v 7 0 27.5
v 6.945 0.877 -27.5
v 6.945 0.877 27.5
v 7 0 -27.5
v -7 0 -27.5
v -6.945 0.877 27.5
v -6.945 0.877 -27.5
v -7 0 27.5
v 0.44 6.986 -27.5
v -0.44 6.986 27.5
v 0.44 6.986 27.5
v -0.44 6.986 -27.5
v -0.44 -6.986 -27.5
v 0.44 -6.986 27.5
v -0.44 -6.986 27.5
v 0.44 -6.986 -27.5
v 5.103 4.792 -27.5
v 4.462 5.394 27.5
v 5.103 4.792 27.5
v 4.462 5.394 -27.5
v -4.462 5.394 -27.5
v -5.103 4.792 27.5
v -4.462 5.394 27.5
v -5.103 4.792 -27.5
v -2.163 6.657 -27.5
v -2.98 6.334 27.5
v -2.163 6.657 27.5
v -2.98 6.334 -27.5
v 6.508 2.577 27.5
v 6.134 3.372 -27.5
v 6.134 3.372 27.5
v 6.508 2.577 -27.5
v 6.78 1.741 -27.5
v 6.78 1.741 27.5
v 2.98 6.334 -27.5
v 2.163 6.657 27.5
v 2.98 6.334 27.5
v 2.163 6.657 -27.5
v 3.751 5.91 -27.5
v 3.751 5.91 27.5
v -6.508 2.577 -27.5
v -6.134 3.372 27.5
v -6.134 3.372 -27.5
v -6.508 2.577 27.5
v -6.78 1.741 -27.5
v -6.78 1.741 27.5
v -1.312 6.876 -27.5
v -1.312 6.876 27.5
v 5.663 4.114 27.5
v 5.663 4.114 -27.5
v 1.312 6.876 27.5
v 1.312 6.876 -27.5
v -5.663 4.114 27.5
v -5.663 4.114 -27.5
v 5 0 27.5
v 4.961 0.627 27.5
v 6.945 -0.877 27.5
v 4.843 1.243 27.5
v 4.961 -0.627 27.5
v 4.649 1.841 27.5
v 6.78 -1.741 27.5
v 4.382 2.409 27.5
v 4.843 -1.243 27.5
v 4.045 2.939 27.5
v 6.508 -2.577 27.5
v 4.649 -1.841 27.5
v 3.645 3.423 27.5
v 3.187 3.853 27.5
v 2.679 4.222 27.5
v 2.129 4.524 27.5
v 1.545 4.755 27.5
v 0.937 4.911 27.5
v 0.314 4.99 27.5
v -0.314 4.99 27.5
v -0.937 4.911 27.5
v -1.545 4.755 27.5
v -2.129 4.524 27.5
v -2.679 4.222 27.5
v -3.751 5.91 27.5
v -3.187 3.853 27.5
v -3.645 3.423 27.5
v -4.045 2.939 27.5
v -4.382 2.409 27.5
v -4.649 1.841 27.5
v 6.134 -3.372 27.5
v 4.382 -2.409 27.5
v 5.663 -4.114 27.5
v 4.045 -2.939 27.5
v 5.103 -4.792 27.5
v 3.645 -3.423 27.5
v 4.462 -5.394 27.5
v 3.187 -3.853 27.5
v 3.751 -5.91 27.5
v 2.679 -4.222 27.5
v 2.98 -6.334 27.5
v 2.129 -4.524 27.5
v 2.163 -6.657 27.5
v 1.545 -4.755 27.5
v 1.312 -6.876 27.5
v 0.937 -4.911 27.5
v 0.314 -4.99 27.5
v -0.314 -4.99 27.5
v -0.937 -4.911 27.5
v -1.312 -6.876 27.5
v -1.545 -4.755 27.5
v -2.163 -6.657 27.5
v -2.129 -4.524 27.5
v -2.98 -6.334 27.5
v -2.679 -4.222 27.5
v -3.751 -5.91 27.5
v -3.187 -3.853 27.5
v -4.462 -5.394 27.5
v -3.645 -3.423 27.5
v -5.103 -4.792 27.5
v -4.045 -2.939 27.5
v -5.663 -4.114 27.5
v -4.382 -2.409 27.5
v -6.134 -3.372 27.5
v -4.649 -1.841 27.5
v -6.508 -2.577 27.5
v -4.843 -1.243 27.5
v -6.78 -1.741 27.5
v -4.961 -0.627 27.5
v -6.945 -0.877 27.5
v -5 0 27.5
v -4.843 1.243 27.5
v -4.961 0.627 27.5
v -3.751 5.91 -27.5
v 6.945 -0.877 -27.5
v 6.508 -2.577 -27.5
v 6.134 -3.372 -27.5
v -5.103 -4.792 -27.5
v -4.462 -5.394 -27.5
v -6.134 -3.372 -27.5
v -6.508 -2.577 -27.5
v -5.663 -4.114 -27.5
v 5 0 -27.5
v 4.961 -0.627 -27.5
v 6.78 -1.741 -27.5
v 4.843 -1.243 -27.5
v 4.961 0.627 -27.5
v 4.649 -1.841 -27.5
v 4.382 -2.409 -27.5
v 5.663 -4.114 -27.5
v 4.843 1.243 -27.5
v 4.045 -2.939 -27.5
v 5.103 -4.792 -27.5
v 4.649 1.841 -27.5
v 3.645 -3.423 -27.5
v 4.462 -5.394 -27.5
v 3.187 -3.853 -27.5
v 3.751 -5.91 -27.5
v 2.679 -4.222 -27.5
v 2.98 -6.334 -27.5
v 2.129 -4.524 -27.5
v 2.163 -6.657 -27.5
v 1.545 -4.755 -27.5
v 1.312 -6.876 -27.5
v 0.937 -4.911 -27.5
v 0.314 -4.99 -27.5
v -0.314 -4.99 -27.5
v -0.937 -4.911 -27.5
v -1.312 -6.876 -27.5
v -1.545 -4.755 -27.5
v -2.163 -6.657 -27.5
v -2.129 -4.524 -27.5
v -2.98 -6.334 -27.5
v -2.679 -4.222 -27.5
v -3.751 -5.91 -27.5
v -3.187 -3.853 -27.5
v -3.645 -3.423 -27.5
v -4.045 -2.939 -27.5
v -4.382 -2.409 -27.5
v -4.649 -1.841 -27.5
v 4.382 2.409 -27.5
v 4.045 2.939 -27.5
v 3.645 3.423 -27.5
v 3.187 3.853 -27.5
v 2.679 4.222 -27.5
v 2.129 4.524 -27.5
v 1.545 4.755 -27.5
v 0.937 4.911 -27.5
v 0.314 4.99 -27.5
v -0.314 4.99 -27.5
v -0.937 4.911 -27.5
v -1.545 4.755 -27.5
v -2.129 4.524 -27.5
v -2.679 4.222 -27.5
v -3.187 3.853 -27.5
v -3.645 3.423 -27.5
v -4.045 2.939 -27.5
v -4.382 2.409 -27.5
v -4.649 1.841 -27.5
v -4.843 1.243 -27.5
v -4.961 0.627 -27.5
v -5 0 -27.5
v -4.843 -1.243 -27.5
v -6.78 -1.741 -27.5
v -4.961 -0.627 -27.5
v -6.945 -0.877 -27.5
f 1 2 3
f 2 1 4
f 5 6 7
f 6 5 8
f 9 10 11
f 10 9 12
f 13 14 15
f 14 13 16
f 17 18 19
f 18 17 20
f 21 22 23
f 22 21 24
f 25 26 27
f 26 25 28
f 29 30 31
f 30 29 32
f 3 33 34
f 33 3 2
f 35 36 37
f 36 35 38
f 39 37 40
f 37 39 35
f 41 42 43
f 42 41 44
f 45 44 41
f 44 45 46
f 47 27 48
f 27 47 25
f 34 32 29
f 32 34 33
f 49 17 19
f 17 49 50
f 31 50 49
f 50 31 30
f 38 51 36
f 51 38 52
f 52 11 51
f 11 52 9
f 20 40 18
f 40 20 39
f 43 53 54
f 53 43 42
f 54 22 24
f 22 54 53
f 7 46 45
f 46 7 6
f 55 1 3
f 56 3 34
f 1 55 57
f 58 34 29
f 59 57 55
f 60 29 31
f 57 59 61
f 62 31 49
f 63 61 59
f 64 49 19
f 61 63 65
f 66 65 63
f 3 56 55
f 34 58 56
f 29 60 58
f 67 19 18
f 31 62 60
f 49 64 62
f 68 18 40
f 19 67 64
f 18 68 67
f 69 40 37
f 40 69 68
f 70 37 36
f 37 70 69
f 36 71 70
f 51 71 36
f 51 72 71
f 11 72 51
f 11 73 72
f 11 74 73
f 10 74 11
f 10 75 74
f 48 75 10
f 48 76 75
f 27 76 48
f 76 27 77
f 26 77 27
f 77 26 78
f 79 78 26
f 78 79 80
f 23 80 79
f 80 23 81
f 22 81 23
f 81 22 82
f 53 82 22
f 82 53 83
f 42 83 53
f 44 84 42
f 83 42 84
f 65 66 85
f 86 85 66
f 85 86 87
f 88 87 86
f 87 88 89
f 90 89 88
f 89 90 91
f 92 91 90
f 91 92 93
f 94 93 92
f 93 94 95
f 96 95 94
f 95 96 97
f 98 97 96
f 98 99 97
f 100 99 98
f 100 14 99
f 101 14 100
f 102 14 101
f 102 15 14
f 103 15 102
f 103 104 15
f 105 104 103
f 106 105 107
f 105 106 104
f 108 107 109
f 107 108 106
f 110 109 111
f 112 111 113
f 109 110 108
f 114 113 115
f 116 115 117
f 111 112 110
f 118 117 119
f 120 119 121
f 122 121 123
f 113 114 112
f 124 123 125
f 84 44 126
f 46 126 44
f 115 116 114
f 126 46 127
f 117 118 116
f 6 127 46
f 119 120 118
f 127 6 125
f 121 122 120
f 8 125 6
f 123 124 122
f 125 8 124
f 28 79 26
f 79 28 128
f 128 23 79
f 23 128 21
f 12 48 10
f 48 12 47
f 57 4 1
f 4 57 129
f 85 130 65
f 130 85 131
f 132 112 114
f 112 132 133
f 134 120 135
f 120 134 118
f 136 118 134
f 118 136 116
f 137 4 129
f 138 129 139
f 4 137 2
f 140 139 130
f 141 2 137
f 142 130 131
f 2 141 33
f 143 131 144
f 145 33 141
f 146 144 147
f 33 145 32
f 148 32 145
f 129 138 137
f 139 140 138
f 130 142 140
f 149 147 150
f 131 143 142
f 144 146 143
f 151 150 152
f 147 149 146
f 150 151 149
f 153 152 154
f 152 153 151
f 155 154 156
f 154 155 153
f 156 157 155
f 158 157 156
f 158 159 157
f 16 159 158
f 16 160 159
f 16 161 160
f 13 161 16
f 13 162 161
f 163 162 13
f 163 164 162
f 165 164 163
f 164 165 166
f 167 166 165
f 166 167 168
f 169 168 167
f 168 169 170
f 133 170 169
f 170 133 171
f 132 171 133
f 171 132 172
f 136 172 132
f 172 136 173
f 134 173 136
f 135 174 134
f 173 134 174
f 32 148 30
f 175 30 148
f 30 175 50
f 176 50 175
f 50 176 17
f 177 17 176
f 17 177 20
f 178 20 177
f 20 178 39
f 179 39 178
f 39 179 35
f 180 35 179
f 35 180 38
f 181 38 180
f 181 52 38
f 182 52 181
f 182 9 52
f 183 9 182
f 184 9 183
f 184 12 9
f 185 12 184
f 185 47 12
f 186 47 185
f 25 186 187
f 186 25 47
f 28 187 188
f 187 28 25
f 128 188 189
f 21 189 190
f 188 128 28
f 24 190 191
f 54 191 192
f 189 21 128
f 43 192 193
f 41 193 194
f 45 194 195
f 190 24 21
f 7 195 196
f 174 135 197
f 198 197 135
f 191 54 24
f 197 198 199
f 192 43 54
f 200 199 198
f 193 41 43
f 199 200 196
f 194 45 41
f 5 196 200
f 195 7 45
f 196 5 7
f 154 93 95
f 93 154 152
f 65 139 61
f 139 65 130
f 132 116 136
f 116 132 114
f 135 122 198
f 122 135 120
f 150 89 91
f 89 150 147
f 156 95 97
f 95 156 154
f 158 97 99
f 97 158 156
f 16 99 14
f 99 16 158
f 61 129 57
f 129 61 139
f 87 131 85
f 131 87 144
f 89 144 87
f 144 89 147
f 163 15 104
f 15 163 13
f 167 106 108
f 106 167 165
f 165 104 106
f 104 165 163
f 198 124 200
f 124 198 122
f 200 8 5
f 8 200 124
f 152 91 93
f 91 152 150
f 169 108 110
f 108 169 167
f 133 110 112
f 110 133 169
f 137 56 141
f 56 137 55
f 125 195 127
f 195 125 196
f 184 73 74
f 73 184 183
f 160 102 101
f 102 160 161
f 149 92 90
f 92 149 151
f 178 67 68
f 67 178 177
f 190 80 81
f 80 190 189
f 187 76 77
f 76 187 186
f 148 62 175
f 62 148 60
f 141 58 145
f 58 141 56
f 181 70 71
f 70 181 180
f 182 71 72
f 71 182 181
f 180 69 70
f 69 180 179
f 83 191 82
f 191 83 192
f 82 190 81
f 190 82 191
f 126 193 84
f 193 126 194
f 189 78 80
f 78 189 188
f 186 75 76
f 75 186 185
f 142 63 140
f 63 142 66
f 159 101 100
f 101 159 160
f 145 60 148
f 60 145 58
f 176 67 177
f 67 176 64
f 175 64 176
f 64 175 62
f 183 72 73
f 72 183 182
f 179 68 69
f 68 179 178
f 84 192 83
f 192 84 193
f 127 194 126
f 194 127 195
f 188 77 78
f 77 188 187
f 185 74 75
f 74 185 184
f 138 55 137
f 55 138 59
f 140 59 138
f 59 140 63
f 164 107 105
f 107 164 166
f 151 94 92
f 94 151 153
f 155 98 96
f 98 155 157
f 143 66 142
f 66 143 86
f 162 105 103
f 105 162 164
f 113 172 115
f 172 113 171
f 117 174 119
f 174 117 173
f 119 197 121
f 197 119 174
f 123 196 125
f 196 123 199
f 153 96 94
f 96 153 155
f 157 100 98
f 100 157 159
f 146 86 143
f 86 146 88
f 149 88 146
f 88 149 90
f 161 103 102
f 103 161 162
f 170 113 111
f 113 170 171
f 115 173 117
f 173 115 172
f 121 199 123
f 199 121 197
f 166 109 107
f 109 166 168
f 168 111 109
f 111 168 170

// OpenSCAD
$fn = 50;


difference() {
	union() {
		translate(v = [0, 0, -27.5000000000]) {
			cylinder(h = 55, r = 7.0000000000);
		}
	}
	union() {
		translate(v = [0, 0, -100.0000000000]) {
			cylinder(h = 200, r = 5);
		}
	}
}
